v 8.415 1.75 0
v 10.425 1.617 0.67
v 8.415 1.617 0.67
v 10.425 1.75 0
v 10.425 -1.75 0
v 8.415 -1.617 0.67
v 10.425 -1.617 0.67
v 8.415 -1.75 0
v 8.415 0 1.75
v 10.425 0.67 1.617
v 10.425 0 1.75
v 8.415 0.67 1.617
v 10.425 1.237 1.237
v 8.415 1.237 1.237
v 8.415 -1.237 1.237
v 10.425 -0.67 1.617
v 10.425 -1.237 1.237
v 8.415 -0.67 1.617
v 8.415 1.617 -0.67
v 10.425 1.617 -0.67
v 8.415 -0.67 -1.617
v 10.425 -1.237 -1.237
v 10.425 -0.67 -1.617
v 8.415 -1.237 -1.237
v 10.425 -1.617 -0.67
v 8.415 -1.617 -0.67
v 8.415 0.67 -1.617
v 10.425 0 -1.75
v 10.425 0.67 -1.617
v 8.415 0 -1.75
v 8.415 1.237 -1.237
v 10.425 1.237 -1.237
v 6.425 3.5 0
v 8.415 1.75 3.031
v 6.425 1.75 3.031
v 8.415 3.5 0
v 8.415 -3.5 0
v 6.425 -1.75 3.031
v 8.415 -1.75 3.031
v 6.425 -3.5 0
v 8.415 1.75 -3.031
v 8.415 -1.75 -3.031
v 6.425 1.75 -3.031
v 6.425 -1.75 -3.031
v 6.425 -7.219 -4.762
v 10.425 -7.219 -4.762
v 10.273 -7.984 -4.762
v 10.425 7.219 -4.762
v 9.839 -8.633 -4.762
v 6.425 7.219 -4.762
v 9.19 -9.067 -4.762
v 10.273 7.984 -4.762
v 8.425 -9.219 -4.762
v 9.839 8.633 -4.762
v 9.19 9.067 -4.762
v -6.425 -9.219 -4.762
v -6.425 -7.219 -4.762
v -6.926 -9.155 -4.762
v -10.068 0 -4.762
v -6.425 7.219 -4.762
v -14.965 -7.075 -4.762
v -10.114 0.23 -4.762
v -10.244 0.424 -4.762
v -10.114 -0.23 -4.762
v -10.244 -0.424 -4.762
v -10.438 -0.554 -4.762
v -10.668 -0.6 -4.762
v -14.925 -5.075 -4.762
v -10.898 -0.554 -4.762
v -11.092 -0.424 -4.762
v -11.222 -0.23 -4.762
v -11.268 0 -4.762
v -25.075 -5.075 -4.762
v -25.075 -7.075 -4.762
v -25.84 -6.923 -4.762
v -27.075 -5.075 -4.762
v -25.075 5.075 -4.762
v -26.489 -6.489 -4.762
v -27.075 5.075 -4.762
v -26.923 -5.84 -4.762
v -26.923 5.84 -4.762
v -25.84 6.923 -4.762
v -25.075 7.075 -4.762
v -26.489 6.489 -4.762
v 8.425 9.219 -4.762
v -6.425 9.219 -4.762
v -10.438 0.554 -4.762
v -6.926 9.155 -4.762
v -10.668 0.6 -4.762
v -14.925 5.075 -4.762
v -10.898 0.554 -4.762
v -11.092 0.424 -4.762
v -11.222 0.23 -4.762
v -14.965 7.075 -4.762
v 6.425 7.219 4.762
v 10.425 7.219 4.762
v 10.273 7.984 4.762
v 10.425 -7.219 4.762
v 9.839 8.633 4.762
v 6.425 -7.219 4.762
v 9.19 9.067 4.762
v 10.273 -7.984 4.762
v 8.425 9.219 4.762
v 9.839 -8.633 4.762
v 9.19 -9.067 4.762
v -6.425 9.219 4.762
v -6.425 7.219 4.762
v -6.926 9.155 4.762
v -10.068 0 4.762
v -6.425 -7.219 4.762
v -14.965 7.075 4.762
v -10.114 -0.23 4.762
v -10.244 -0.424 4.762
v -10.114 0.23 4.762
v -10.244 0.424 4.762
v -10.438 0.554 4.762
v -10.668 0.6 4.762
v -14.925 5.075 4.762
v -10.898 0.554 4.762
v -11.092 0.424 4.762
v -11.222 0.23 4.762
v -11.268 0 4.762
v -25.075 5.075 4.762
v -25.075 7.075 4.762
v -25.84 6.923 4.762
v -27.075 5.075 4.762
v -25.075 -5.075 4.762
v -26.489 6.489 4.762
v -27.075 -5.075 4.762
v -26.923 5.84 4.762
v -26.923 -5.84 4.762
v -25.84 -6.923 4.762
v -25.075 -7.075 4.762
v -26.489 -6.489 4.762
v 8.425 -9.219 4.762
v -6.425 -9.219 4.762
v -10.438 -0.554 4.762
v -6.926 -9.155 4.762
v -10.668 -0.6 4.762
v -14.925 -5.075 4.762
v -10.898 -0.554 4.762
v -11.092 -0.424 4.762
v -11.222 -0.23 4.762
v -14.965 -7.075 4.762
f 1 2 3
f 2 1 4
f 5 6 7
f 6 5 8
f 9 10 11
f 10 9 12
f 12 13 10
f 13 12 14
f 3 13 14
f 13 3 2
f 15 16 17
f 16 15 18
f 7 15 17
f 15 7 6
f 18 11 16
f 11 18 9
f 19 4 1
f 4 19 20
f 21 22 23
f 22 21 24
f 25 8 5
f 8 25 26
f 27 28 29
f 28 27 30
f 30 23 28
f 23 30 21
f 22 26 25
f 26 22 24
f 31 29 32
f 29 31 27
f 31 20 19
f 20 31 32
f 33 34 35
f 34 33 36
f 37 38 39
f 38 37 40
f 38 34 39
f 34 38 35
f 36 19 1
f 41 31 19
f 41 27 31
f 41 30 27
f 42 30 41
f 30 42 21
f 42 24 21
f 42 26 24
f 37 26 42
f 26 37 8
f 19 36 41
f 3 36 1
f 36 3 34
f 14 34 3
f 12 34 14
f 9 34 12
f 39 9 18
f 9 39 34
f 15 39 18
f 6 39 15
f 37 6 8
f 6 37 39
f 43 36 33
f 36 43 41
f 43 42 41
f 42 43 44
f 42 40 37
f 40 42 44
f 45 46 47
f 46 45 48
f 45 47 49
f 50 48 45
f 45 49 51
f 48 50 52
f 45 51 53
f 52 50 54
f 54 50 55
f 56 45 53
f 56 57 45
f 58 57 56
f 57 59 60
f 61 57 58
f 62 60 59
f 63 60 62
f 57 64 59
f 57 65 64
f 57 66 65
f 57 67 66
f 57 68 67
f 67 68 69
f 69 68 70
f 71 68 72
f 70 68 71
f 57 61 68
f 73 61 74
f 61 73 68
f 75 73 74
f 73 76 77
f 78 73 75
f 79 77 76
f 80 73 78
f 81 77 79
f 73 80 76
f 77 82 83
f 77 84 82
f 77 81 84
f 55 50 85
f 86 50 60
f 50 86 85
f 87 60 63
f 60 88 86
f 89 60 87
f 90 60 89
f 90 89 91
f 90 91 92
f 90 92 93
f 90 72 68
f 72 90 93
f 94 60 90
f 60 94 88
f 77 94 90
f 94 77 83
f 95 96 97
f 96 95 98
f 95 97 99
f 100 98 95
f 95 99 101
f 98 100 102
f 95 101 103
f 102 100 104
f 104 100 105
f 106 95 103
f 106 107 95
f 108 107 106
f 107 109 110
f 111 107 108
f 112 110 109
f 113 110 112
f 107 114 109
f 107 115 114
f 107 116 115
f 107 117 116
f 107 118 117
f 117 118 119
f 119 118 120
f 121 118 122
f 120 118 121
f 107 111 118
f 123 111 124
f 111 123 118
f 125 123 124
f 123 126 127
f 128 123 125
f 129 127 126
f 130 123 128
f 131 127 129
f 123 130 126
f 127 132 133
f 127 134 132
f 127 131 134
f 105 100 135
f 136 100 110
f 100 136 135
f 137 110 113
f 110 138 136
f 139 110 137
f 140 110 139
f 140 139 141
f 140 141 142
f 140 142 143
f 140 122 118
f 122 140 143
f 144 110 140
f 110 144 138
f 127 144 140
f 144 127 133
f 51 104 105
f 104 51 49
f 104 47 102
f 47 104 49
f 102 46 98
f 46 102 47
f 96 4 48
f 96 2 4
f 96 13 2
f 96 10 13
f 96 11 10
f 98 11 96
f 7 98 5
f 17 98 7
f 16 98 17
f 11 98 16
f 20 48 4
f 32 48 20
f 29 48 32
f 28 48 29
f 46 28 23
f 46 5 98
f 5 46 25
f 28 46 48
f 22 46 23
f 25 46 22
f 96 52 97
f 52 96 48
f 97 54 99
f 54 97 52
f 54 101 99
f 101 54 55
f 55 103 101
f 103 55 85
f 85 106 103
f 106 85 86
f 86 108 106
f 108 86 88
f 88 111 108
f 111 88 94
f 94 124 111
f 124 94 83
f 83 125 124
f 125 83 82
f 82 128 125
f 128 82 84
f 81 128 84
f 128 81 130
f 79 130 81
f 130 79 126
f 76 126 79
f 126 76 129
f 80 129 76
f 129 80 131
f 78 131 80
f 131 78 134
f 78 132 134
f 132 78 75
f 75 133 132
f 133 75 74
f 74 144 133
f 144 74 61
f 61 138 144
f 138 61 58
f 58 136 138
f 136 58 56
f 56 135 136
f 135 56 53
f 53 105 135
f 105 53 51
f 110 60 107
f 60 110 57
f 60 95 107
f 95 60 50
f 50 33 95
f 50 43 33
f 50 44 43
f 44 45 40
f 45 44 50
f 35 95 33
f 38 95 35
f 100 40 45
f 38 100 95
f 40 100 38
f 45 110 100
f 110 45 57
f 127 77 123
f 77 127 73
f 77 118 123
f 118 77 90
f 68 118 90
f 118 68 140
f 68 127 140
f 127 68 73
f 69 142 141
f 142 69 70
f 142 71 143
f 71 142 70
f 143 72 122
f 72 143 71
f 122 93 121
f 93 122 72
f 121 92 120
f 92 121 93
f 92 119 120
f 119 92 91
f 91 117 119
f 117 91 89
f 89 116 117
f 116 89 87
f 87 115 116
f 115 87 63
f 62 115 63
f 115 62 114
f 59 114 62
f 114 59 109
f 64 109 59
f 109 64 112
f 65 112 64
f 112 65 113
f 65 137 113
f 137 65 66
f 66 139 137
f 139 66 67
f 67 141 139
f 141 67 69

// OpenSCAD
mm=1;
in=25.4*mm;
slop = 0.15*mm;
eps = 0.01*mm;
wall=2*mm;
center_rad=13*mm;

pen_width = 0.5*in+slop;
pen_depth = 0.5625*in+slop;

beam_offset = center_rad+wall+5*mm;
$fn=16;

hole_offset = 0.42*in;

difference(){
    translate([0,0,-0.1875*in])
    linear_extrude(height=0.375*in)
    difference(){
        union(){
            offset(wall)
            union(){
                polygon([
                    [-pen_width/2,-pen_depth/2],
                    [-beam_offset+5*mm, -5*mm],            
                    [-beam_offset+5*mm, 5*mm],            
                    [-pen_width/2,pen_depth/2],
                    [-pen_width/2,-pen_depth/2],
                ]);
                translate([-beam_offset,0])
    
                square([10*mm+slop, 10*mm+slop], center=true);
                square([pen_width, pen_depth],center=true);
                translate([wall,0,0])
                square([pen_width, pen_depth],center=true);
    
            }
        }
        union(){
            translate([-beam_offset,0])
    
            square([10*mm+slop, 10*mm+slop], center=true);
            
            square([pen_width, pen_depth],center=true);
            translate([-hole_offset,0])
            circle(r=0.6*mm);
        }
    }
    color("red")
    translate([pen_width/2-eps,0,0])
    rotate([90,0,0])
    rotate([0,90,0])
    union(){
        cylinder(r=1.75*mm,h=1*in);
        cylinder(r=3.5*mm,h=wall, $fn=6);
    }
}
